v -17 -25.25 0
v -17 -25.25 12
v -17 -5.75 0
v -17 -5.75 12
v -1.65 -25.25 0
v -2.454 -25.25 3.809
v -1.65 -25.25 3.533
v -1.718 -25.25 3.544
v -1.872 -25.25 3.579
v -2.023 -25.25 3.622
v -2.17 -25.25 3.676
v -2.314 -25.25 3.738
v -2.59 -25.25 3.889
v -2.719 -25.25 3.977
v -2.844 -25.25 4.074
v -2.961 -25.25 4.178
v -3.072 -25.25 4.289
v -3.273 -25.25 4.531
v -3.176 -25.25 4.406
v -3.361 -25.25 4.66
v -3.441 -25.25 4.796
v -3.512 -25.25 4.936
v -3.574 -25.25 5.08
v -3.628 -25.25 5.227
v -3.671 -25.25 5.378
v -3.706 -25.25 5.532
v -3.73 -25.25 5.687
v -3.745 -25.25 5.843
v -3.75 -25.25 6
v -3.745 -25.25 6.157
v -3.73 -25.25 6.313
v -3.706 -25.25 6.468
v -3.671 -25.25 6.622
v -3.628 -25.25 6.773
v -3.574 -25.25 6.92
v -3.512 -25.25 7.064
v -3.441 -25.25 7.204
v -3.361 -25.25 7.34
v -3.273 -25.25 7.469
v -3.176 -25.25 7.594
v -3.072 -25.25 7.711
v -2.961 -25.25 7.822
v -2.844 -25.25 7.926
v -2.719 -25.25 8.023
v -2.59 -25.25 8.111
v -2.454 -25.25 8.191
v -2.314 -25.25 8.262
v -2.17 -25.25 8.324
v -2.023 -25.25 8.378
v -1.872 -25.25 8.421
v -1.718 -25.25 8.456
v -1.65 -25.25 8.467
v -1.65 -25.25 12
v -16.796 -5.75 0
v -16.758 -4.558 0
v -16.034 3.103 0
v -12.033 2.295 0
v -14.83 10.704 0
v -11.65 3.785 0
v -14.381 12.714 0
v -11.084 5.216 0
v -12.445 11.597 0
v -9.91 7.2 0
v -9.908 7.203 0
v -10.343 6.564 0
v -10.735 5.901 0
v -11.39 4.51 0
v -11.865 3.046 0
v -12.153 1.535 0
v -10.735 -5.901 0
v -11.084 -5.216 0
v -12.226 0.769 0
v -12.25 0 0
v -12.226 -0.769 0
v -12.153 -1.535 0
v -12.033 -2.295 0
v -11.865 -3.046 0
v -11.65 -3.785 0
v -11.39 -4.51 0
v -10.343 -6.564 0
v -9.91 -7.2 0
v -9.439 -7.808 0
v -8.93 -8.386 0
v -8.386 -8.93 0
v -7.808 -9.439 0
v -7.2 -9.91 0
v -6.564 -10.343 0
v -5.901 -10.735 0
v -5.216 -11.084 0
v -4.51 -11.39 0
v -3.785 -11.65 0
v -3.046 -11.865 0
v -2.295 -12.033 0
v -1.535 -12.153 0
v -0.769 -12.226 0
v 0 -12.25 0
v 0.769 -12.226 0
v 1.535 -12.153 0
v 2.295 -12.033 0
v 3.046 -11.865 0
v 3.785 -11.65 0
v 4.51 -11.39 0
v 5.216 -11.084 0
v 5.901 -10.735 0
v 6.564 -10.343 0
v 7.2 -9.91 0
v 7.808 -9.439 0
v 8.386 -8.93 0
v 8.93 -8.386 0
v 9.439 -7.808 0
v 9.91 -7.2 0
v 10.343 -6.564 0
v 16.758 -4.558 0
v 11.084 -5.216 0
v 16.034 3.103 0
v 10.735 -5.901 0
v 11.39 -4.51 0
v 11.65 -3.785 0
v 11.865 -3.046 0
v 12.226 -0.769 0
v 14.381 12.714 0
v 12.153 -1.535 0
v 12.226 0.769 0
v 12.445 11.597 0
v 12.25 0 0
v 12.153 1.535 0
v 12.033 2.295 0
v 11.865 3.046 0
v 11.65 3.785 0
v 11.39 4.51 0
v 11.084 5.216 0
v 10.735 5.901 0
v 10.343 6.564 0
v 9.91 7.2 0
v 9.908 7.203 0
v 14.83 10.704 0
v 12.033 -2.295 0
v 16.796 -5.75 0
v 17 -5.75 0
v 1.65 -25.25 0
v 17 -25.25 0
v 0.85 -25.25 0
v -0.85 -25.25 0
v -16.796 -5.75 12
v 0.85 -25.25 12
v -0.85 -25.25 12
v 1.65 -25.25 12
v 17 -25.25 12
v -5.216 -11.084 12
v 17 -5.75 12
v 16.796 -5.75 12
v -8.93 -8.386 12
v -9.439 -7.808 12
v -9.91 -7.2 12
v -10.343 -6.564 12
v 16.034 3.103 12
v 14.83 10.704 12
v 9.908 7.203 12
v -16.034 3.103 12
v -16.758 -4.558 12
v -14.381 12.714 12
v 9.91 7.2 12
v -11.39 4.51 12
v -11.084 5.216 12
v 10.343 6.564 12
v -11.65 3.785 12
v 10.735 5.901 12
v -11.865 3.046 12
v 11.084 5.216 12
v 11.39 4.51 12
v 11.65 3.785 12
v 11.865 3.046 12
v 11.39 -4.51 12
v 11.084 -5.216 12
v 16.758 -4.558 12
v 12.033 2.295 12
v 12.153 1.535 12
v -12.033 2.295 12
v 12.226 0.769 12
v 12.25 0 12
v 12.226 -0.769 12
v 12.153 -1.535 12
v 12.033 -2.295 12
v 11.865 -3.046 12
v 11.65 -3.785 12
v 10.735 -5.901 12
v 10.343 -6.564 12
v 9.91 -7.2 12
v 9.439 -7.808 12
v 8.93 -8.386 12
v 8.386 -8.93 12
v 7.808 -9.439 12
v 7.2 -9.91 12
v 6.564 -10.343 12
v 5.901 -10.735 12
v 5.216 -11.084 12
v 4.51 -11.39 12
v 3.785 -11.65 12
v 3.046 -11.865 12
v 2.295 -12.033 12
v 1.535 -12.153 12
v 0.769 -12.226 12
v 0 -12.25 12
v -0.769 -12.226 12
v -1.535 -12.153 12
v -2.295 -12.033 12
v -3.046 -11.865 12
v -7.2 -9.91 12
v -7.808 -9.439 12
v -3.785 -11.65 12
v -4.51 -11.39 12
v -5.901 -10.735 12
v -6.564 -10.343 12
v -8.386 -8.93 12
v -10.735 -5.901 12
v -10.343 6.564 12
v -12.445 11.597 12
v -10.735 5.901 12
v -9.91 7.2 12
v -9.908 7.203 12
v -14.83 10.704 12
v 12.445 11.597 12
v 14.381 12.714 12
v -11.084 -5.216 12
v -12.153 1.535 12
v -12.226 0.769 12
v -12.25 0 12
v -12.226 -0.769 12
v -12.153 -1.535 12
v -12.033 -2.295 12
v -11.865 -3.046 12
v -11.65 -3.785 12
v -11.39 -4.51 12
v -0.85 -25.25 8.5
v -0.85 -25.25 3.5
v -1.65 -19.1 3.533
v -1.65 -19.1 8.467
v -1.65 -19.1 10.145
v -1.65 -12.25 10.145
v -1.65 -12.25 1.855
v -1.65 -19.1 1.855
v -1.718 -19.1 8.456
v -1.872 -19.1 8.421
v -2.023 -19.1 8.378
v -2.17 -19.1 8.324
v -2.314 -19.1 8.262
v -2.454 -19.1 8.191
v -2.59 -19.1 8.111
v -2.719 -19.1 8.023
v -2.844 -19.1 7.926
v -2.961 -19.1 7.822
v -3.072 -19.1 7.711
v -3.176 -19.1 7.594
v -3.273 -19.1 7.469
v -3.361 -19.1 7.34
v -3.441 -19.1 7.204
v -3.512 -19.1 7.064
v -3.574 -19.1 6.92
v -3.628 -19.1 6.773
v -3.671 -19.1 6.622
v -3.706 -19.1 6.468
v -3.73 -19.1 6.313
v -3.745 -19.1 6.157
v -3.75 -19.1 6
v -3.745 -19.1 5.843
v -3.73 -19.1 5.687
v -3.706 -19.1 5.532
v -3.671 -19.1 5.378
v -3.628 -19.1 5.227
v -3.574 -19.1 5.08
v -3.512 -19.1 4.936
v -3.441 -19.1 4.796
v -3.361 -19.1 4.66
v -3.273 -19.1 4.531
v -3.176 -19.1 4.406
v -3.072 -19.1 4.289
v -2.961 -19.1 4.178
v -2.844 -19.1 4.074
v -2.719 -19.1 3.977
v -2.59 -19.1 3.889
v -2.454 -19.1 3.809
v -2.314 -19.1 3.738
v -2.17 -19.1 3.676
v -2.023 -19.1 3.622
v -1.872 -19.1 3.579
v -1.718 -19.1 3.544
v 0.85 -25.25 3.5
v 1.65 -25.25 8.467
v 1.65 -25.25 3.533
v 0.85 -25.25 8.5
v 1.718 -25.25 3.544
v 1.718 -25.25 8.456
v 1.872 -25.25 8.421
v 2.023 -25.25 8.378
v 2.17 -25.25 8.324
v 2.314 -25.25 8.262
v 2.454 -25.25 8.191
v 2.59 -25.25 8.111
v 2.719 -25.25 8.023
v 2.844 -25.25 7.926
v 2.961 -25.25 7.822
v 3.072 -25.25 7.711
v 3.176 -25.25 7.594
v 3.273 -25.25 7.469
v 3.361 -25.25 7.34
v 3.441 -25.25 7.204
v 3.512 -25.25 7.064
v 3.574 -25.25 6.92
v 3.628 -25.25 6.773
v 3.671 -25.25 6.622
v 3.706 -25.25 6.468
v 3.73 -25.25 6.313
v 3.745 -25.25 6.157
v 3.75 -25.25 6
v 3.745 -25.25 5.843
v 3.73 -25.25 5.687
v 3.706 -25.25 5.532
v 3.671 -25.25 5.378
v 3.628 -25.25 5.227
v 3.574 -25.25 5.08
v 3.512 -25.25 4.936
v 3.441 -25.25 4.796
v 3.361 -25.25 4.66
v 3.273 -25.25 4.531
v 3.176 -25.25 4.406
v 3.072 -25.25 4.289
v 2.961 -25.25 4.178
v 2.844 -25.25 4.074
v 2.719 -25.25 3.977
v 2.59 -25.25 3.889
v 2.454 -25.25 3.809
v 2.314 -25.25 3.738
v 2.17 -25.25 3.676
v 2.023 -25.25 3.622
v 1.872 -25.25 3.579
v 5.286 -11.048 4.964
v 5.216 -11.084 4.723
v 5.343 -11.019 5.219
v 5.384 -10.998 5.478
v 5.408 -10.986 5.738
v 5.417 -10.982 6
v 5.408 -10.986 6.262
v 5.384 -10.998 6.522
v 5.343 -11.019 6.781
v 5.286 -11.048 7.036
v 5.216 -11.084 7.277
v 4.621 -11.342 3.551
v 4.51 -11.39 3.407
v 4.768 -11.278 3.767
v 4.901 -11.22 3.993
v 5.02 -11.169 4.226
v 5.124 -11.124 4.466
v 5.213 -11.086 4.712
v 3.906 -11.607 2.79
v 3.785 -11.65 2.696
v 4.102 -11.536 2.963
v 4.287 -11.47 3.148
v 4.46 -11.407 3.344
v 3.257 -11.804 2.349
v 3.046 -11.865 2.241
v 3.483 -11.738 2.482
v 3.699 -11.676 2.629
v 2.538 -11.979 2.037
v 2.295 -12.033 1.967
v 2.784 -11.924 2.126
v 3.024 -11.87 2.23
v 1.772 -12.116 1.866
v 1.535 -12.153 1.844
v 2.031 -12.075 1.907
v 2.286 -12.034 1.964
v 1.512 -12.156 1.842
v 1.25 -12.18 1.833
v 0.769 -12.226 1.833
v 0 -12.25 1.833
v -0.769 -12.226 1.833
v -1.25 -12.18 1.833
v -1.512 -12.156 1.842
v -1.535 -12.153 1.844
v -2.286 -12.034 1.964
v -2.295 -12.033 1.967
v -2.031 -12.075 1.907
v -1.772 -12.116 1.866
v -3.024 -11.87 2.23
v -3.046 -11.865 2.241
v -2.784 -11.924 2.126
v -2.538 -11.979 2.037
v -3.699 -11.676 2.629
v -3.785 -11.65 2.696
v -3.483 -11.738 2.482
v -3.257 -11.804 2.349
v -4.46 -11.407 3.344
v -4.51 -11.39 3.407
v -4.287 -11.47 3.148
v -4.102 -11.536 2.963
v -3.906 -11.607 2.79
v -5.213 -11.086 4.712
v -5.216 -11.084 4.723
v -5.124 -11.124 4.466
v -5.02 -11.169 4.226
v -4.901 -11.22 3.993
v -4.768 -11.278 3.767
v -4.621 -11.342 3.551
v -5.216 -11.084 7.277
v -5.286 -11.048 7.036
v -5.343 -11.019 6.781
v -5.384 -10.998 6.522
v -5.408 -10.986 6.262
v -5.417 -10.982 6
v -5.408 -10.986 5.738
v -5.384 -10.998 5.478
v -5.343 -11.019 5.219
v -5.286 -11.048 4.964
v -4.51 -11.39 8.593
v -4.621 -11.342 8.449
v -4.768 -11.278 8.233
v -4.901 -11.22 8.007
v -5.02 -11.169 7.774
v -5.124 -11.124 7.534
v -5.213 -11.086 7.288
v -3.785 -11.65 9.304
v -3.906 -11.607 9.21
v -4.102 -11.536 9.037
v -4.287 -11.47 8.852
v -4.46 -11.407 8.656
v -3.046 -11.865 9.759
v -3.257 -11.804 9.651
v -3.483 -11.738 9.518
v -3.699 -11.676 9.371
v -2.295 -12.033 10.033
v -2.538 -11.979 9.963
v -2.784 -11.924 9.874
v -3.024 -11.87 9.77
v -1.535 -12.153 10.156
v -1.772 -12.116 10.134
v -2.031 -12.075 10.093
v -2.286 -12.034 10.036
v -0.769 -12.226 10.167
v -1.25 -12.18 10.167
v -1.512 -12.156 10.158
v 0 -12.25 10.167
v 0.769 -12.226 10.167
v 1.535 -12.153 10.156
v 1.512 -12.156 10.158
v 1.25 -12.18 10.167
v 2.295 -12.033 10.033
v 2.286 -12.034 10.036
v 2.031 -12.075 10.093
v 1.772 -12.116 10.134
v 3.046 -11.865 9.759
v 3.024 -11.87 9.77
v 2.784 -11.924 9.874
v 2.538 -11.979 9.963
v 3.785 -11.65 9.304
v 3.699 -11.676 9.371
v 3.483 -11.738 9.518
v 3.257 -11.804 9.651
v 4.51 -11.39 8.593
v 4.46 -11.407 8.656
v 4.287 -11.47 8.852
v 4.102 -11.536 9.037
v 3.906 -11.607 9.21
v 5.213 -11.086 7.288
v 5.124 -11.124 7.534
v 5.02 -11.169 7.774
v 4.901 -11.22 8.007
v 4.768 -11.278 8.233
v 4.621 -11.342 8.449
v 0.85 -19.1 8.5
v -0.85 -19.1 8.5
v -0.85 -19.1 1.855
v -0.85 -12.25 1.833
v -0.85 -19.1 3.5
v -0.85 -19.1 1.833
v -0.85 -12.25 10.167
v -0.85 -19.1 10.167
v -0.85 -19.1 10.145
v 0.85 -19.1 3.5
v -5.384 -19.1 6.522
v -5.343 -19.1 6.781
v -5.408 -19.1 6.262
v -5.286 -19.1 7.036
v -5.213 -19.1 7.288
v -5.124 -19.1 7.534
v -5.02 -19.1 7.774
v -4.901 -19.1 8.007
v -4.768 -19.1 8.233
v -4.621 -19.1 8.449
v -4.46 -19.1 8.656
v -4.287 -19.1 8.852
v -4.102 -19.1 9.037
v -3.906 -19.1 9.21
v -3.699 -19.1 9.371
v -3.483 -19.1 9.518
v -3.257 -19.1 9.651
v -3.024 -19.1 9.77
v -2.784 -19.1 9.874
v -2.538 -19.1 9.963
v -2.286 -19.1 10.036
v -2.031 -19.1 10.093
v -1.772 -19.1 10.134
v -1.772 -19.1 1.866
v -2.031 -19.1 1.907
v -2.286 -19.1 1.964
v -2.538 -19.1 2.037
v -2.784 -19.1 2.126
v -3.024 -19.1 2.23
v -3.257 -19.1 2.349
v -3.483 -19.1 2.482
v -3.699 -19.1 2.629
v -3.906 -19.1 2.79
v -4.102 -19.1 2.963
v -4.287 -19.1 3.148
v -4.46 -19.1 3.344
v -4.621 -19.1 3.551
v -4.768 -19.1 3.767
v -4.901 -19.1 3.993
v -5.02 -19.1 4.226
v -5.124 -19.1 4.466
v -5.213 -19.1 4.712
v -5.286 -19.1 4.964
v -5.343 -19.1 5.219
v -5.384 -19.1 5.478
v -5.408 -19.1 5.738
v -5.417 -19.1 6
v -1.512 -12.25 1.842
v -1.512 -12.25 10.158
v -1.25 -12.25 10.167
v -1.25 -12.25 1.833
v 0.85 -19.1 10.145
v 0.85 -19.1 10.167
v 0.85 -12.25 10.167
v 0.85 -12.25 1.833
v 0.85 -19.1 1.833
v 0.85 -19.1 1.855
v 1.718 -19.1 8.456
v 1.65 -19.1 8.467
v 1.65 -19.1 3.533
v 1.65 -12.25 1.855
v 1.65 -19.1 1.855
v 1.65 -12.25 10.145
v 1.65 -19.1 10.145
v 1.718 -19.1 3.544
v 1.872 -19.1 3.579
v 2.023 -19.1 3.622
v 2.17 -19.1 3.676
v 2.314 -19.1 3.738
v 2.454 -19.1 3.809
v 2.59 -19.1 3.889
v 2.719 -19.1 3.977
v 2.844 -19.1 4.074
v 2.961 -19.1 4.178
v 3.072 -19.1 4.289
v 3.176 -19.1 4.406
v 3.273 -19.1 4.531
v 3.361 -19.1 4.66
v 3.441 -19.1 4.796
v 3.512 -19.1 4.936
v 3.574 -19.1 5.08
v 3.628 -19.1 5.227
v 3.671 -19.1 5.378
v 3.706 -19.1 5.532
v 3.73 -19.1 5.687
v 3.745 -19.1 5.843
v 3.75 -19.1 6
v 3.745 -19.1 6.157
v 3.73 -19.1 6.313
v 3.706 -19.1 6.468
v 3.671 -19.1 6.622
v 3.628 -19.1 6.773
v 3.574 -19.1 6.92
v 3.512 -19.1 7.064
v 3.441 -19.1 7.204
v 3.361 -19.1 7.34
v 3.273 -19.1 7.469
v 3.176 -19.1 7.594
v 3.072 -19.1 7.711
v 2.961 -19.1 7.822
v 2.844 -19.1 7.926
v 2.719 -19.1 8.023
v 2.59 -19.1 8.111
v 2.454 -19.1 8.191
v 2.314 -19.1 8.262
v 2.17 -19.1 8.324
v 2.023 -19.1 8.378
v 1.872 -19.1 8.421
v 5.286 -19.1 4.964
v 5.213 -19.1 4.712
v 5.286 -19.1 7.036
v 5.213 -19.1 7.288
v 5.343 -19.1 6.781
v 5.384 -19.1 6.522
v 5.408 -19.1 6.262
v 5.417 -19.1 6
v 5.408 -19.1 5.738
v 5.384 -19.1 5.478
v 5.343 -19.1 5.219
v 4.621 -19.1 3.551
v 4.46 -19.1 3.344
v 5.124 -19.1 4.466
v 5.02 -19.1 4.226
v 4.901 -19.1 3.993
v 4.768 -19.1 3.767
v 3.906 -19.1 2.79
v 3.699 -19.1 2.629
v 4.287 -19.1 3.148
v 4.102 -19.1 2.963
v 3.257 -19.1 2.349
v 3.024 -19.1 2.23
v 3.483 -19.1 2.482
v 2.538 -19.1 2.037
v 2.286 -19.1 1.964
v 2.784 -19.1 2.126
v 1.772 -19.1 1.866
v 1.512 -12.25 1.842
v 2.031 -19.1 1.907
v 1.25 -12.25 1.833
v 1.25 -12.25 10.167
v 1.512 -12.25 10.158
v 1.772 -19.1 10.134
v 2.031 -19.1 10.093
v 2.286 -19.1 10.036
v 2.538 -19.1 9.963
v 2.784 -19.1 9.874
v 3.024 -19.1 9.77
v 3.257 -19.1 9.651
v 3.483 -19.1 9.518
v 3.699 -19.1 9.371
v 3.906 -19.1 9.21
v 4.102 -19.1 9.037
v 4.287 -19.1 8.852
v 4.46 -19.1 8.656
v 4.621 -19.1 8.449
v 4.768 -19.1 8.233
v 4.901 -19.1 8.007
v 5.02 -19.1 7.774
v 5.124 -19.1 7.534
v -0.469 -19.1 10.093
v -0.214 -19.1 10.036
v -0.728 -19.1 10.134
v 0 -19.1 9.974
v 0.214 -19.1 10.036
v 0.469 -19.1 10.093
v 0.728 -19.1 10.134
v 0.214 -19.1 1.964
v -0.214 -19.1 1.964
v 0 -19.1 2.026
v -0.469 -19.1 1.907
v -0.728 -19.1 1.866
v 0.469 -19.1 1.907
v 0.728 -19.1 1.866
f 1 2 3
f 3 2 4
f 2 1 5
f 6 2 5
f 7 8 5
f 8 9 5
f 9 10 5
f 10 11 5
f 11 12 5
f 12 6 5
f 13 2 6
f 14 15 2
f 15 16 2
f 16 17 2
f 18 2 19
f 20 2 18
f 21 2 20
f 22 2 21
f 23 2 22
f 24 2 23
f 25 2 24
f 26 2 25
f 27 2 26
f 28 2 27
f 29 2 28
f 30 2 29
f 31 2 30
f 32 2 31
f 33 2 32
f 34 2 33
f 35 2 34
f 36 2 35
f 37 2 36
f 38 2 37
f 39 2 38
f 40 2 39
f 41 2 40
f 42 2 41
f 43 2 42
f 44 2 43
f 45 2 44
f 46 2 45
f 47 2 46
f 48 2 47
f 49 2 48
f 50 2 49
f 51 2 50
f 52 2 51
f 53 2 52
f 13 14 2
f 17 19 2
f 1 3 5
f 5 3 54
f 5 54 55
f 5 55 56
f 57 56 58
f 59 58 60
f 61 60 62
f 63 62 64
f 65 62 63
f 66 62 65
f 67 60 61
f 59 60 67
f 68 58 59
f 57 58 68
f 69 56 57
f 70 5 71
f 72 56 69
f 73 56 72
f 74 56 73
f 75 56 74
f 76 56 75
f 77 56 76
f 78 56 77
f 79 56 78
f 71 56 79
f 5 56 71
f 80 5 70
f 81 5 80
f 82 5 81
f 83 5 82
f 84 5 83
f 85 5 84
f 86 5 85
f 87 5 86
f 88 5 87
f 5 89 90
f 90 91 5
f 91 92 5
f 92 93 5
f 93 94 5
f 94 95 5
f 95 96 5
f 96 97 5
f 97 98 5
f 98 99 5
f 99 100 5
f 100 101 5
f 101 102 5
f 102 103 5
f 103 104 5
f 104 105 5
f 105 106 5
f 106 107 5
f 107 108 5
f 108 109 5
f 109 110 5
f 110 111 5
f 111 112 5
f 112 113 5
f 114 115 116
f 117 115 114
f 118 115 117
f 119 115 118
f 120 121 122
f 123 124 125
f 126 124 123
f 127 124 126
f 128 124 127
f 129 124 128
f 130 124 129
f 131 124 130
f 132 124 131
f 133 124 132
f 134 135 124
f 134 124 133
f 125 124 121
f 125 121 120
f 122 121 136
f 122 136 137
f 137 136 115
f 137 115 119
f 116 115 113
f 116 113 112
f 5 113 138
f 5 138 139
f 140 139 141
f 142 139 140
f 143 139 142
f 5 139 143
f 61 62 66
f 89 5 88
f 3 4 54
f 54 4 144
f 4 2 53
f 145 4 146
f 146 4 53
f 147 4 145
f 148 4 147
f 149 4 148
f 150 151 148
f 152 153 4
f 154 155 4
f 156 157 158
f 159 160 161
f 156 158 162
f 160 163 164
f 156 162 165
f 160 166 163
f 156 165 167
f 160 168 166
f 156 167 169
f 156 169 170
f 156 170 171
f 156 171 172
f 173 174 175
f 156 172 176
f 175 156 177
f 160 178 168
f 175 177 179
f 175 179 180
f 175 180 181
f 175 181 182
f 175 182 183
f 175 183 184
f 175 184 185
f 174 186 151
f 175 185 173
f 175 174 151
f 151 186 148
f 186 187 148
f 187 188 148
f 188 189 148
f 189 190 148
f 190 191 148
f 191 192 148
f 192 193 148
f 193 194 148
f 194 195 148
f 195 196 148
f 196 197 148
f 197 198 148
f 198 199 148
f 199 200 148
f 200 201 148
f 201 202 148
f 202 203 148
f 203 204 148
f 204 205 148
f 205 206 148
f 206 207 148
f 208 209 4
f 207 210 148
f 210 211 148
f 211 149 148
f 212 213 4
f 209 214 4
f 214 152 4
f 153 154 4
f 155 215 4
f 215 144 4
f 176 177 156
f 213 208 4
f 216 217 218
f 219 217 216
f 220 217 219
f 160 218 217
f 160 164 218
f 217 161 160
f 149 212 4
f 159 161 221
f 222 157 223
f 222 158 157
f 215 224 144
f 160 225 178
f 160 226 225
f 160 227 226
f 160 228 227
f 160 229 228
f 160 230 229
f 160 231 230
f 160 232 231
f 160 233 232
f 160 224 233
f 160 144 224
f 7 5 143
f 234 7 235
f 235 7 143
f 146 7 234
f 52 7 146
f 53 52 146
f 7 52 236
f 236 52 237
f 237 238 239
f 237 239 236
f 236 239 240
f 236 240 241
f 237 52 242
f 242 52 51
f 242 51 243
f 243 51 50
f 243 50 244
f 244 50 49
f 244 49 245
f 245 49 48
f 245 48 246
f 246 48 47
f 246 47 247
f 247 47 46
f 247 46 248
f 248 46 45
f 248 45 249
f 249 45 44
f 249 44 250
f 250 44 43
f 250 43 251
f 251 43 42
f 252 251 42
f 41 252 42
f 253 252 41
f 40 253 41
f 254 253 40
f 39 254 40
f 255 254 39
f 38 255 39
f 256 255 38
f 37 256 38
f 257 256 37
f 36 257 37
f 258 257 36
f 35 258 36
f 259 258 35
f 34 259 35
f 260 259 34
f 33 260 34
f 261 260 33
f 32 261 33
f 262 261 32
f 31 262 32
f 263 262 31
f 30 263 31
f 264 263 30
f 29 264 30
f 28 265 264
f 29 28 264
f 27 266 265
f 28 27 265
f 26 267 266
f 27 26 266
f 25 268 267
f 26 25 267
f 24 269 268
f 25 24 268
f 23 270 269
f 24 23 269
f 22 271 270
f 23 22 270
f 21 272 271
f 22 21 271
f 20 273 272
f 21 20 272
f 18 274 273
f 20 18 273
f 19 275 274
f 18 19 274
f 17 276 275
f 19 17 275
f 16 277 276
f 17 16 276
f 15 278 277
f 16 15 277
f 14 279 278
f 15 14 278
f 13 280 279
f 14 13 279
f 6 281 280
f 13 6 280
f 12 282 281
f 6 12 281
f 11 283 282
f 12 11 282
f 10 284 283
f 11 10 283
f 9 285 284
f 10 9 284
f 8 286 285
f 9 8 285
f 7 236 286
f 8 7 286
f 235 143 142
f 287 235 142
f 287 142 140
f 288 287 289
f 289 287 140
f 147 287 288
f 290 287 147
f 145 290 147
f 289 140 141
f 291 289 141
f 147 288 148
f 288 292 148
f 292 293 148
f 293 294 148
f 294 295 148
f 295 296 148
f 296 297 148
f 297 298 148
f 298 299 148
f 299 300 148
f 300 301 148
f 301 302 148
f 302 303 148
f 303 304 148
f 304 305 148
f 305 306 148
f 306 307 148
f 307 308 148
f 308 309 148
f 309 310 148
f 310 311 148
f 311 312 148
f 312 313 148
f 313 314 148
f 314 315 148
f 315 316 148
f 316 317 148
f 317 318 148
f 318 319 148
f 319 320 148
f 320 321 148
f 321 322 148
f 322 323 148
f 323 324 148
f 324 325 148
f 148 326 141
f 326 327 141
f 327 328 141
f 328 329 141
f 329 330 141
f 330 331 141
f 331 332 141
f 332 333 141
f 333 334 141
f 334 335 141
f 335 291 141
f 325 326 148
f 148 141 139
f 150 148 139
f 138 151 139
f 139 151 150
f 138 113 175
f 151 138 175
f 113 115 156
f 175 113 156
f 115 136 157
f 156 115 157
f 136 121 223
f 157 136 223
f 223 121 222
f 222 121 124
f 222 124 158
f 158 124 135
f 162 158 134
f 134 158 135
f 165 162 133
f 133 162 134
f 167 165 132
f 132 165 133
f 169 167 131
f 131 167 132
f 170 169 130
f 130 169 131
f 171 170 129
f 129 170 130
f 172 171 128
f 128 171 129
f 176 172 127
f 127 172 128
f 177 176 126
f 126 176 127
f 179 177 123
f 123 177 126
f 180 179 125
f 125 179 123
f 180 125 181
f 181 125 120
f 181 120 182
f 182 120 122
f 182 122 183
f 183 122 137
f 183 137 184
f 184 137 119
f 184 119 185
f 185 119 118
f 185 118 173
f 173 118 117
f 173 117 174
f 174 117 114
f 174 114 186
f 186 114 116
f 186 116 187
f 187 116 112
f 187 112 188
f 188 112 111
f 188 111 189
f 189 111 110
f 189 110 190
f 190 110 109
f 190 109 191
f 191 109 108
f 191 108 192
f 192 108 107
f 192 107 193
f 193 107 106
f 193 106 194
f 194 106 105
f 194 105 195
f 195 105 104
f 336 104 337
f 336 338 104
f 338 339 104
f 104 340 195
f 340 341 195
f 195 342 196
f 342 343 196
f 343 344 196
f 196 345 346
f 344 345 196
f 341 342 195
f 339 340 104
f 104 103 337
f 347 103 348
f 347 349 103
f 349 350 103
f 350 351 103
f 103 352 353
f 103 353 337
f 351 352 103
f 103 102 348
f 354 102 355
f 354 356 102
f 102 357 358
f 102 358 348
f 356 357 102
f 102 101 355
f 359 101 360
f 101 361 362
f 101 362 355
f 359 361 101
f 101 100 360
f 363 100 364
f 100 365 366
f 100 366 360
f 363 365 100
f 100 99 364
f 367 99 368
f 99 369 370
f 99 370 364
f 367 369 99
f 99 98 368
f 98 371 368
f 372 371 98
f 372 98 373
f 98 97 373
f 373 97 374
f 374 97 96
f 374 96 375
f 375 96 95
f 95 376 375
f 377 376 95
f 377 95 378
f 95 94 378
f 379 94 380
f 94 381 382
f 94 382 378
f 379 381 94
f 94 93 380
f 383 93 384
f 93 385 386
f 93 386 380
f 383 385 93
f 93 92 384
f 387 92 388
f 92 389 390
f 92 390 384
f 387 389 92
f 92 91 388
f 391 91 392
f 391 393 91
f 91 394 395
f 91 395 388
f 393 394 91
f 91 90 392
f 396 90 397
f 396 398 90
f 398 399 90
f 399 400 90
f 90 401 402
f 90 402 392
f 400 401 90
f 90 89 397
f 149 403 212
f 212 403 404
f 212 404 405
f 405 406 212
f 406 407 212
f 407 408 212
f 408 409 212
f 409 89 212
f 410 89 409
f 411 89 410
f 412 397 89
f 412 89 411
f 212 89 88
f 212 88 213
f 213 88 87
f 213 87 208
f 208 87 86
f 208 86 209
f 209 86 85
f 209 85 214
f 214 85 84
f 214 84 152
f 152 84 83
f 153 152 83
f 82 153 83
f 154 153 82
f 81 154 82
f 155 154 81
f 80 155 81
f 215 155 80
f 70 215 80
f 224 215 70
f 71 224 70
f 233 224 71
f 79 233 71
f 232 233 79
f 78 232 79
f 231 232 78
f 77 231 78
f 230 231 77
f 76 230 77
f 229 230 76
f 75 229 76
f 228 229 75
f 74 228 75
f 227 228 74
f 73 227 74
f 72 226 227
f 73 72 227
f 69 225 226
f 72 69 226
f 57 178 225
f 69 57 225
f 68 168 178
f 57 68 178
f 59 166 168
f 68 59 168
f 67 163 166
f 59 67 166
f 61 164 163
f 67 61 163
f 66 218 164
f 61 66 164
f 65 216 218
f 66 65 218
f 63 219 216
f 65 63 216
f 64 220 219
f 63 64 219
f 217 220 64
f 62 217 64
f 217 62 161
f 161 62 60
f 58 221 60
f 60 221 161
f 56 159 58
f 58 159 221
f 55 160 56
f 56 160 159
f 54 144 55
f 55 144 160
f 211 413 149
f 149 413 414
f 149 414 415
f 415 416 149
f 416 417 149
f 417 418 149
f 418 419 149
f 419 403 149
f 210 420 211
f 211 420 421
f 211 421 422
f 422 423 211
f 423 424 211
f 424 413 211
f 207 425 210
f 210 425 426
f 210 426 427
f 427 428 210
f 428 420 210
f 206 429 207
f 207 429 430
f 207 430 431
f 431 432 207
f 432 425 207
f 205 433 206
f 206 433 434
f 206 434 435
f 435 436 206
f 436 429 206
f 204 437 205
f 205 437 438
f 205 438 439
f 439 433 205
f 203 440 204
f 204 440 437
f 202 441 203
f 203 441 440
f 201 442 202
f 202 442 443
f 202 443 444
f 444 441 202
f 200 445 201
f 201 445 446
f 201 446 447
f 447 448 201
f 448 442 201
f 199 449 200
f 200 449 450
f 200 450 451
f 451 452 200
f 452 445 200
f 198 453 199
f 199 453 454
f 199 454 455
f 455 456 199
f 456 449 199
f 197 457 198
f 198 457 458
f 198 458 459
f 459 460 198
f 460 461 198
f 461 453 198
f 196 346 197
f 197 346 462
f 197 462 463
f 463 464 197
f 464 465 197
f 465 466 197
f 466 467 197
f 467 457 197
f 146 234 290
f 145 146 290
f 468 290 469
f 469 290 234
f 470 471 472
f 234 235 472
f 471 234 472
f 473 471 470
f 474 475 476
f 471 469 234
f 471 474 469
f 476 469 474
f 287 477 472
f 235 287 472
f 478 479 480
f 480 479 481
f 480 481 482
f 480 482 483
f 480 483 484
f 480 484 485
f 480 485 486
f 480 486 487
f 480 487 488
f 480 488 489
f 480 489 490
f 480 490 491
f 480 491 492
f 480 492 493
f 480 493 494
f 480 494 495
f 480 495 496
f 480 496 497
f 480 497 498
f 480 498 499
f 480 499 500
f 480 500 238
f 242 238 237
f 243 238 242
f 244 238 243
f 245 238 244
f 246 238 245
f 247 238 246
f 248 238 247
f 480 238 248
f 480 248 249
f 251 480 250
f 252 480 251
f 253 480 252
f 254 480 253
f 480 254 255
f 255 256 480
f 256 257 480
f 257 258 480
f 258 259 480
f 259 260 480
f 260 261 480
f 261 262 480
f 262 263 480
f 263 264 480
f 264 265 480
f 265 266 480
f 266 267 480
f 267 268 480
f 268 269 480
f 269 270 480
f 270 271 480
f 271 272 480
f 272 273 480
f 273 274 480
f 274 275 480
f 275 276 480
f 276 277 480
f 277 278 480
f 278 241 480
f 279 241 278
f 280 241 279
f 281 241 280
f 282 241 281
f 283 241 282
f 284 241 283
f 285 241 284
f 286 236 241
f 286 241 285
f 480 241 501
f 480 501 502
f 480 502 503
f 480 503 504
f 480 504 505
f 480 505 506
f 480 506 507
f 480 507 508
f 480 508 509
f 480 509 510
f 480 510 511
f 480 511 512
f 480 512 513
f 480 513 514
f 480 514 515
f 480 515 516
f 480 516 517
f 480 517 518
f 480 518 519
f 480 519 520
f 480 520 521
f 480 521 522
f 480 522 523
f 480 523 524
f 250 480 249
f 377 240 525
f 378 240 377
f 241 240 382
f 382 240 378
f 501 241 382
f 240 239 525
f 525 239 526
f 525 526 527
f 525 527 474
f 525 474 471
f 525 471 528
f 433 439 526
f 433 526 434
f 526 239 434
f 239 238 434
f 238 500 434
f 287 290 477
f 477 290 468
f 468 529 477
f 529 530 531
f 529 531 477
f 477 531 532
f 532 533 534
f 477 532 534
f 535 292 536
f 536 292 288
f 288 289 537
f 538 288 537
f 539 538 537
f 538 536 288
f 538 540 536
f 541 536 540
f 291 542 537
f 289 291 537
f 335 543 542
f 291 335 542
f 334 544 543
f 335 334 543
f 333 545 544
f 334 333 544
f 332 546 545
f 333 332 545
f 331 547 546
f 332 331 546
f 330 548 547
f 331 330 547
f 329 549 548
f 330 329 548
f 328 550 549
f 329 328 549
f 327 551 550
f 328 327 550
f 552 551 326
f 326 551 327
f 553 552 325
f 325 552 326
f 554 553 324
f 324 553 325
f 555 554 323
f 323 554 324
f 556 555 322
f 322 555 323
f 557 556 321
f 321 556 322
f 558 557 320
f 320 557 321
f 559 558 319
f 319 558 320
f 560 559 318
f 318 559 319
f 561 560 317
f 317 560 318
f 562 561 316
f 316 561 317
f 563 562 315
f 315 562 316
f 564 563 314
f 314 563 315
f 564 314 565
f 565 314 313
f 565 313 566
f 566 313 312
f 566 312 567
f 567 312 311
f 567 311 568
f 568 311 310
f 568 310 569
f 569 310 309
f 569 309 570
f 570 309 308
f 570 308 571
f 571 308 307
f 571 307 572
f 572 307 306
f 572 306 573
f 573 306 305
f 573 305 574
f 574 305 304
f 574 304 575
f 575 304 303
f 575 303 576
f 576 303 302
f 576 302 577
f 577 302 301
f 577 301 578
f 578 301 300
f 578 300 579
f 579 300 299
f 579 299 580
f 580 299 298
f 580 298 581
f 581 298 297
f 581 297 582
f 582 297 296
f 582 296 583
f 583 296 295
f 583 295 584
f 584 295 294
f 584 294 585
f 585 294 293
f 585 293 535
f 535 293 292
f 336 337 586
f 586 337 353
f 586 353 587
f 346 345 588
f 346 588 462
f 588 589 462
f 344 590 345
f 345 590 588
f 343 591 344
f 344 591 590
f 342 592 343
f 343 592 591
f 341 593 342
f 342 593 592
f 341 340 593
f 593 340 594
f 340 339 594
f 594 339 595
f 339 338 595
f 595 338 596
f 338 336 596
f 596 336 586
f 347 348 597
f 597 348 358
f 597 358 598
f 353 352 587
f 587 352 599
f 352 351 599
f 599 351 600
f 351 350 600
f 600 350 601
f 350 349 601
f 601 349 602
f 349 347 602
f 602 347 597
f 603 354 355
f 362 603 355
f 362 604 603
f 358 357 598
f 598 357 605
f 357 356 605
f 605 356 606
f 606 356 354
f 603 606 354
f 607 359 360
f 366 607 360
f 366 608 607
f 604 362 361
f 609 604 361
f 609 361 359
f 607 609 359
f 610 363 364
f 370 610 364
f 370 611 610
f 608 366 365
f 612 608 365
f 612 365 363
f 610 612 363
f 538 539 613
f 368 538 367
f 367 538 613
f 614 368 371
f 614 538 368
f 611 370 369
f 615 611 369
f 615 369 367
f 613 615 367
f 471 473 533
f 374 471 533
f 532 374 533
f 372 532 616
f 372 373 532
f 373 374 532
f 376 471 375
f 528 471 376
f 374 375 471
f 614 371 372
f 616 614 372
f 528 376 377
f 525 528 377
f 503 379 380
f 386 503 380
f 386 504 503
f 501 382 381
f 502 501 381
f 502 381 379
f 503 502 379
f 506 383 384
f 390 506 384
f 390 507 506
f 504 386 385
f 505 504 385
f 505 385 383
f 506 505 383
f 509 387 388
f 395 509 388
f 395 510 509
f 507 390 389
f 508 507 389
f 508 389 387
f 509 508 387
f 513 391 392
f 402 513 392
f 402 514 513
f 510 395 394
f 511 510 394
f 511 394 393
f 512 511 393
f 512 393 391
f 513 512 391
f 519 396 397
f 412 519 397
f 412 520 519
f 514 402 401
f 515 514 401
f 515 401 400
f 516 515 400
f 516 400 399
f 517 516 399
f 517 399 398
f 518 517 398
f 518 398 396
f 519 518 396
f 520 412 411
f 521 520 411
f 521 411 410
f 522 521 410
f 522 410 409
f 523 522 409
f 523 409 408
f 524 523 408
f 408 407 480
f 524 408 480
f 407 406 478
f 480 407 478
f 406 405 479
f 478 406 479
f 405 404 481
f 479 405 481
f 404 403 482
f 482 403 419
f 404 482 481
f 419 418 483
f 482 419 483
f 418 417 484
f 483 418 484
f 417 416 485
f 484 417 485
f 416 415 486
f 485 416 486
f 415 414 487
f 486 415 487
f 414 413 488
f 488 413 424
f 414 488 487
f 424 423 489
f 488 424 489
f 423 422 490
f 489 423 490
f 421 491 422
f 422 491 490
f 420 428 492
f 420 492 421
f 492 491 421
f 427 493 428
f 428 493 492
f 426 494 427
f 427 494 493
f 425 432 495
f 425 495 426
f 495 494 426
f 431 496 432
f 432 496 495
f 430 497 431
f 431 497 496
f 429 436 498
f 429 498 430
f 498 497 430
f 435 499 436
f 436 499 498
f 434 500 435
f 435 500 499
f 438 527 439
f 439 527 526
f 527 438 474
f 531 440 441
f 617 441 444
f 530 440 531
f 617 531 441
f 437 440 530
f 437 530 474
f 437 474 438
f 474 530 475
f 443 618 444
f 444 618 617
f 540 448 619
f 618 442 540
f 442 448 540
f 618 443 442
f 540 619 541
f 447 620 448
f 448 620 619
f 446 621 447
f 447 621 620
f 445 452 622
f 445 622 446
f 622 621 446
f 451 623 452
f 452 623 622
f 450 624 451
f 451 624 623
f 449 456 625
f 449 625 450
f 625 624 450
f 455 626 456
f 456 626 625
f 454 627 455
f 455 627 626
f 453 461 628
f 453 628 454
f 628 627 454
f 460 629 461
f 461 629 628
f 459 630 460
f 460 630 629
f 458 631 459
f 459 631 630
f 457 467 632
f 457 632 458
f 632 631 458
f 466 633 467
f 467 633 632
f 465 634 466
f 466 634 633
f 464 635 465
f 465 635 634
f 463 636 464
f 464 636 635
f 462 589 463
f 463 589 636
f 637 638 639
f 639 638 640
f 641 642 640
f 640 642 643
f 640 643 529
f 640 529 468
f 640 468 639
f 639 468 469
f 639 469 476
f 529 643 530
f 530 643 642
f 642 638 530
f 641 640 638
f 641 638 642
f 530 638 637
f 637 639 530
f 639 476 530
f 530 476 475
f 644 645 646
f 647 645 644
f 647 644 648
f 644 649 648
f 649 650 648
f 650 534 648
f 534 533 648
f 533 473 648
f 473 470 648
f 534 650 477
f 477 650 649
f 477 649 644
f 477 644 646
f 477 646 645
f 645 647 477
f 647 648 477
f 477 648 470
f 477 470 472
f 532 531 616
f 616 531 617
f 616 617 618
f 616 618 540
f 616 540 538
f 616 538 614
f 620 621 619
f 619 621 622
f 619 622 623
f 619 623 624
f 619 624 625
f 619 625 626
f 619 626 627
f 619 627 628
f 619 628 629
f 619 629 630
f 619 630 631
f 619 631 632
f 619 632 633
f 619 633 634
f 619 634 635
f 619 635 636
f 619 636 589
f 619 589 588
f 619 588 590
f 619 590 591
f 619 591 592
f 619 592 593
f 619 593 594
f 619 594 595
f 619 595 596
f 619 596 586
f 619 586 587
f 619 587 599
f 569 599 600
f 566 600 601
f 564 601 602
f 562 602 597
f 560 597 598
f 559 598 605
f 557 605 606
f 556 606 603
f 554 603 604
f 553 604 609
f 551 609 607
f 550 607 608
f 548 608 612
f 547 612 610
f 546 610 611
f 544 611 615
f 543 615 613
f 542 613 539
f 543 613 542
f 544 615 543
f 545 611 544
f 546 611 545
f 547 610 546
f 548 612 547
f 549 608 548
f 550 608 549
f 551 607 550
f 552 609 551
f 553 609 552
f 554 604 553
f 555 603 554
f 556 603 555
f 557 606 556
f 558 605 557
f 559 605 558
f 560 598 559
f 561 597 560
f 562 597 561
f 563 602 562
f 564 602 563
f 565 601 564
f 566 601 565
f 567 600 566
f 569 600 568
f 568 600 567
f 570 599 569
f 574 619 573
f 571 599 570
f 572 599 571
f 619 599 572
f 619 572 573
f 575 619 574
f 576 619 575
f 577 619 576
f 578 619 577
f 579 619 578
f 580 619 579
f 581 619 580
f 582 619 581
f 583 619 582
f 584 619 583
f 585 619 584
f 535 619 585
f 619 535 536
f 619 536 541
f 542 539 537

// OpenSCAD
// Cable tube holder (bracket)
$fn = 100;

module hole (hr, hh, s)
{
    translate ([ s / 2, 0 , 0]) cylinder (r = hr, h = hh);
    translate ([-s / 2, 0 , 0]) cylinder (r = hr, h = hh);
    translate ([0, 0, hh / 2]) cube ([s, 2 * hr, hh], center = true);
}

module recess (l, h)
{
    translate ([0, l / 2, 0]) {
        translate ([-l / 2, 0, 0]) cube ([l, l, h], center = true);
        translate ([0, 0,  h / 2])
            rotate ([0,  45, 0]) translate ([-l / 2,  0, -h / 2])
                cube ([l, l, h], center = true);
        translate ([0, 0, -h / 2])
            rotate ([0, -45, 0]) translate ([-l / 2,  0,  h / 2])
                cube ([l, l, h], center = true);
    }
}

// dia:   Diameter of hole
// screw: Diameter of screw
// l:     Thickness of wall around hole (length) (X)
// w:     Width of part below tube hole (affects length of screw) (Y)
// h:     Width of holder (thickness) (Z)
// screwratio: ratio between screw head diameter and inner hole
// scr_vert: vertical screw, use horizontal one if false
module holder (dia, screw, l, w, h, screwratio=5/3, scr_vert=true)
{
    r  = dia / 2;
    rk = 10 * r;
    ri = screw / 2;
    ro = ri * screwratio;
    sh = rk - l / 2;
    e  = 0.01;
    hd = w * 0.55;
    translate ([0, 0, h/2]) {
        difference () {
            union () {
                // base
                translate ([ 0, -1.5 * w / 2 - r + 0.5 * w, 0])
                    cube ([l, 1.5 * w, h], center = true);
                // rounded bracket
                intersection () {
                    translate ([ sh, -r, 0])
                        cylinder (r = rk, h = h, center = true);
                    translate ([-sh, -r, 0])
                        cylinder (r = rk, h = h, center = true);
                }
            }
            translate ([0, sqrt (2) * l / 2, 0])
            {
                rotate ([0, 0, 30])
                    cube (l, center = true);
                rotate ([0, 0, 60])
                    cube (l, center = true);
            }
            // Screw hole vertical
            if (scr_vert) {
                rotate ([-90, 0, 0]) {
                    translate ([0, 0, -(r + w + 1)])
                        hole (ri, hd + 1, ri);
                    translate ([0, 0, -(r + w + 1) + hd])
                        hole (ro, 3 * hd, ri);
                }
            }
            // Screw hole horizontal
            if (!scr_vert) {
                translate ([0, -r -(w/2), 0])
                    rotate ([0, 90, 0]) {
                        cylinder (r=ri, h=3*l, center=true);
                }
            }
            // Cylinder for tube
            cylinder (r = r, h = 2 * h, center = true);
            // Remove upper and lower parts of rounded bracket
            translate ([0, -rk / 2 - r - w, 0])
                cube (rk, center = true);
            translate ([0,  rk / 2 + r + w, 0])
                cube (rk, center = true);
            // Add recess, destroys rounded bracket :-(
            if (0) {
                translate ([-l / 2 + 1, -r, 0])
                    rotate ([0, 0, -10])
                        recess (4 * r, h - 4);
                translate ([ l / 2 - 1, -r, 0])
                    rotate ([0, 0, 10])
                        rotate ([0, 180, 0]) recess (4 * r, h - 4);
            }
        }
        // Support for screw hole
        if (screw >= 4 && scr_vert) {
            translate ([ ri / 2, -w / 2 - r, 0])
                cube ([0.8, w, h], center = true);
            translate ([-ri / 2, -w / 2 - r, 0])
                cube ([0.8, w, h], center = true);
        }
    }
}

// setting VARIANT using the -D option to openscad overrides this!
VARIANT = "Tube_24.5mm";
// Set to 60 via -D option to increase distance between cable holders
// for Variant Tube_35mm_3mm:6
TUBE_DISTANCE = 0;

echo (VARIANT);
echo (TUBE_DISTANCE);

if (VARIANT == "Tube_24.5mm") {
    // Single holder
    holder (24.5, 5, 34, 13, 12);
} else if (VARIANT == "Tube_24.5mm_2") {
    // dual holder 24.5mm
    translate ([-17 + 0.001, 0, 0])
        holder (24.5, 5, 34, 13, 12);
    translate ([ 17 - 0.001, 0, 0])
        holder (24.5, 5, 34, 13, 12);
}

// Cable holder with 3mm screw
if (VARIANT == "Cable_8mm") {
    // For 8mm cable
    holder (8, 3.2, 11.5, 9, 8);
} else if (VARIANT == "Cable_9mm") {
    // For 9mm cable
    holder (9, 3.2, 12.5, 9, 8);
}


if (VARIANT == "Tube_18mm:2") {
    // For 18mm copper tubing
    translate ([0, 0, 5]) {
        translate ([29, 0, 0])
        holder (18, 3.2, 27, 10, 10);
        holder (18, 3.2, 27, 10, 10);
    }
}

// For 26.3mm PE-AL-PE with 3mm (metric) screw
if (VARIANT == "Tube_35mm_3mm:3" || VARIANT == "Tube_35mm_3mm:6") {
    for (k = [35, -5, -45]) {
        translate ([k, 35, 0])
            holder (26.3, 3.2, 38, 13, 13, 5.75/3);
    }
}
if (VARIANT == "Tube_35mm_3mm:6") {
    translate ([-10, -TUBE_DISTANCE, 0]) {
        rotate ([0, 0, 180]) {
            for (k = [35, -5, -45]) {
                translate ([k, 35, 0])
                    holder (26.3, 3.2, 38, 13, 13, 5.75/3);
            }
        }
    }
}

// For RG-213 cable with vertical screw
if (VARIANT == "Cable_RG213" || VARIANT == "Cable_RG213:4") {
    for (k = (VARIANT == "Cable_RG213" ? [-5] : [-5, -20, -35, -50])) {
        translate ([k, 40, 0])
            holder (9.7, 3.2, 13.5, 9, 8, scr_vert=false);
    }
}
